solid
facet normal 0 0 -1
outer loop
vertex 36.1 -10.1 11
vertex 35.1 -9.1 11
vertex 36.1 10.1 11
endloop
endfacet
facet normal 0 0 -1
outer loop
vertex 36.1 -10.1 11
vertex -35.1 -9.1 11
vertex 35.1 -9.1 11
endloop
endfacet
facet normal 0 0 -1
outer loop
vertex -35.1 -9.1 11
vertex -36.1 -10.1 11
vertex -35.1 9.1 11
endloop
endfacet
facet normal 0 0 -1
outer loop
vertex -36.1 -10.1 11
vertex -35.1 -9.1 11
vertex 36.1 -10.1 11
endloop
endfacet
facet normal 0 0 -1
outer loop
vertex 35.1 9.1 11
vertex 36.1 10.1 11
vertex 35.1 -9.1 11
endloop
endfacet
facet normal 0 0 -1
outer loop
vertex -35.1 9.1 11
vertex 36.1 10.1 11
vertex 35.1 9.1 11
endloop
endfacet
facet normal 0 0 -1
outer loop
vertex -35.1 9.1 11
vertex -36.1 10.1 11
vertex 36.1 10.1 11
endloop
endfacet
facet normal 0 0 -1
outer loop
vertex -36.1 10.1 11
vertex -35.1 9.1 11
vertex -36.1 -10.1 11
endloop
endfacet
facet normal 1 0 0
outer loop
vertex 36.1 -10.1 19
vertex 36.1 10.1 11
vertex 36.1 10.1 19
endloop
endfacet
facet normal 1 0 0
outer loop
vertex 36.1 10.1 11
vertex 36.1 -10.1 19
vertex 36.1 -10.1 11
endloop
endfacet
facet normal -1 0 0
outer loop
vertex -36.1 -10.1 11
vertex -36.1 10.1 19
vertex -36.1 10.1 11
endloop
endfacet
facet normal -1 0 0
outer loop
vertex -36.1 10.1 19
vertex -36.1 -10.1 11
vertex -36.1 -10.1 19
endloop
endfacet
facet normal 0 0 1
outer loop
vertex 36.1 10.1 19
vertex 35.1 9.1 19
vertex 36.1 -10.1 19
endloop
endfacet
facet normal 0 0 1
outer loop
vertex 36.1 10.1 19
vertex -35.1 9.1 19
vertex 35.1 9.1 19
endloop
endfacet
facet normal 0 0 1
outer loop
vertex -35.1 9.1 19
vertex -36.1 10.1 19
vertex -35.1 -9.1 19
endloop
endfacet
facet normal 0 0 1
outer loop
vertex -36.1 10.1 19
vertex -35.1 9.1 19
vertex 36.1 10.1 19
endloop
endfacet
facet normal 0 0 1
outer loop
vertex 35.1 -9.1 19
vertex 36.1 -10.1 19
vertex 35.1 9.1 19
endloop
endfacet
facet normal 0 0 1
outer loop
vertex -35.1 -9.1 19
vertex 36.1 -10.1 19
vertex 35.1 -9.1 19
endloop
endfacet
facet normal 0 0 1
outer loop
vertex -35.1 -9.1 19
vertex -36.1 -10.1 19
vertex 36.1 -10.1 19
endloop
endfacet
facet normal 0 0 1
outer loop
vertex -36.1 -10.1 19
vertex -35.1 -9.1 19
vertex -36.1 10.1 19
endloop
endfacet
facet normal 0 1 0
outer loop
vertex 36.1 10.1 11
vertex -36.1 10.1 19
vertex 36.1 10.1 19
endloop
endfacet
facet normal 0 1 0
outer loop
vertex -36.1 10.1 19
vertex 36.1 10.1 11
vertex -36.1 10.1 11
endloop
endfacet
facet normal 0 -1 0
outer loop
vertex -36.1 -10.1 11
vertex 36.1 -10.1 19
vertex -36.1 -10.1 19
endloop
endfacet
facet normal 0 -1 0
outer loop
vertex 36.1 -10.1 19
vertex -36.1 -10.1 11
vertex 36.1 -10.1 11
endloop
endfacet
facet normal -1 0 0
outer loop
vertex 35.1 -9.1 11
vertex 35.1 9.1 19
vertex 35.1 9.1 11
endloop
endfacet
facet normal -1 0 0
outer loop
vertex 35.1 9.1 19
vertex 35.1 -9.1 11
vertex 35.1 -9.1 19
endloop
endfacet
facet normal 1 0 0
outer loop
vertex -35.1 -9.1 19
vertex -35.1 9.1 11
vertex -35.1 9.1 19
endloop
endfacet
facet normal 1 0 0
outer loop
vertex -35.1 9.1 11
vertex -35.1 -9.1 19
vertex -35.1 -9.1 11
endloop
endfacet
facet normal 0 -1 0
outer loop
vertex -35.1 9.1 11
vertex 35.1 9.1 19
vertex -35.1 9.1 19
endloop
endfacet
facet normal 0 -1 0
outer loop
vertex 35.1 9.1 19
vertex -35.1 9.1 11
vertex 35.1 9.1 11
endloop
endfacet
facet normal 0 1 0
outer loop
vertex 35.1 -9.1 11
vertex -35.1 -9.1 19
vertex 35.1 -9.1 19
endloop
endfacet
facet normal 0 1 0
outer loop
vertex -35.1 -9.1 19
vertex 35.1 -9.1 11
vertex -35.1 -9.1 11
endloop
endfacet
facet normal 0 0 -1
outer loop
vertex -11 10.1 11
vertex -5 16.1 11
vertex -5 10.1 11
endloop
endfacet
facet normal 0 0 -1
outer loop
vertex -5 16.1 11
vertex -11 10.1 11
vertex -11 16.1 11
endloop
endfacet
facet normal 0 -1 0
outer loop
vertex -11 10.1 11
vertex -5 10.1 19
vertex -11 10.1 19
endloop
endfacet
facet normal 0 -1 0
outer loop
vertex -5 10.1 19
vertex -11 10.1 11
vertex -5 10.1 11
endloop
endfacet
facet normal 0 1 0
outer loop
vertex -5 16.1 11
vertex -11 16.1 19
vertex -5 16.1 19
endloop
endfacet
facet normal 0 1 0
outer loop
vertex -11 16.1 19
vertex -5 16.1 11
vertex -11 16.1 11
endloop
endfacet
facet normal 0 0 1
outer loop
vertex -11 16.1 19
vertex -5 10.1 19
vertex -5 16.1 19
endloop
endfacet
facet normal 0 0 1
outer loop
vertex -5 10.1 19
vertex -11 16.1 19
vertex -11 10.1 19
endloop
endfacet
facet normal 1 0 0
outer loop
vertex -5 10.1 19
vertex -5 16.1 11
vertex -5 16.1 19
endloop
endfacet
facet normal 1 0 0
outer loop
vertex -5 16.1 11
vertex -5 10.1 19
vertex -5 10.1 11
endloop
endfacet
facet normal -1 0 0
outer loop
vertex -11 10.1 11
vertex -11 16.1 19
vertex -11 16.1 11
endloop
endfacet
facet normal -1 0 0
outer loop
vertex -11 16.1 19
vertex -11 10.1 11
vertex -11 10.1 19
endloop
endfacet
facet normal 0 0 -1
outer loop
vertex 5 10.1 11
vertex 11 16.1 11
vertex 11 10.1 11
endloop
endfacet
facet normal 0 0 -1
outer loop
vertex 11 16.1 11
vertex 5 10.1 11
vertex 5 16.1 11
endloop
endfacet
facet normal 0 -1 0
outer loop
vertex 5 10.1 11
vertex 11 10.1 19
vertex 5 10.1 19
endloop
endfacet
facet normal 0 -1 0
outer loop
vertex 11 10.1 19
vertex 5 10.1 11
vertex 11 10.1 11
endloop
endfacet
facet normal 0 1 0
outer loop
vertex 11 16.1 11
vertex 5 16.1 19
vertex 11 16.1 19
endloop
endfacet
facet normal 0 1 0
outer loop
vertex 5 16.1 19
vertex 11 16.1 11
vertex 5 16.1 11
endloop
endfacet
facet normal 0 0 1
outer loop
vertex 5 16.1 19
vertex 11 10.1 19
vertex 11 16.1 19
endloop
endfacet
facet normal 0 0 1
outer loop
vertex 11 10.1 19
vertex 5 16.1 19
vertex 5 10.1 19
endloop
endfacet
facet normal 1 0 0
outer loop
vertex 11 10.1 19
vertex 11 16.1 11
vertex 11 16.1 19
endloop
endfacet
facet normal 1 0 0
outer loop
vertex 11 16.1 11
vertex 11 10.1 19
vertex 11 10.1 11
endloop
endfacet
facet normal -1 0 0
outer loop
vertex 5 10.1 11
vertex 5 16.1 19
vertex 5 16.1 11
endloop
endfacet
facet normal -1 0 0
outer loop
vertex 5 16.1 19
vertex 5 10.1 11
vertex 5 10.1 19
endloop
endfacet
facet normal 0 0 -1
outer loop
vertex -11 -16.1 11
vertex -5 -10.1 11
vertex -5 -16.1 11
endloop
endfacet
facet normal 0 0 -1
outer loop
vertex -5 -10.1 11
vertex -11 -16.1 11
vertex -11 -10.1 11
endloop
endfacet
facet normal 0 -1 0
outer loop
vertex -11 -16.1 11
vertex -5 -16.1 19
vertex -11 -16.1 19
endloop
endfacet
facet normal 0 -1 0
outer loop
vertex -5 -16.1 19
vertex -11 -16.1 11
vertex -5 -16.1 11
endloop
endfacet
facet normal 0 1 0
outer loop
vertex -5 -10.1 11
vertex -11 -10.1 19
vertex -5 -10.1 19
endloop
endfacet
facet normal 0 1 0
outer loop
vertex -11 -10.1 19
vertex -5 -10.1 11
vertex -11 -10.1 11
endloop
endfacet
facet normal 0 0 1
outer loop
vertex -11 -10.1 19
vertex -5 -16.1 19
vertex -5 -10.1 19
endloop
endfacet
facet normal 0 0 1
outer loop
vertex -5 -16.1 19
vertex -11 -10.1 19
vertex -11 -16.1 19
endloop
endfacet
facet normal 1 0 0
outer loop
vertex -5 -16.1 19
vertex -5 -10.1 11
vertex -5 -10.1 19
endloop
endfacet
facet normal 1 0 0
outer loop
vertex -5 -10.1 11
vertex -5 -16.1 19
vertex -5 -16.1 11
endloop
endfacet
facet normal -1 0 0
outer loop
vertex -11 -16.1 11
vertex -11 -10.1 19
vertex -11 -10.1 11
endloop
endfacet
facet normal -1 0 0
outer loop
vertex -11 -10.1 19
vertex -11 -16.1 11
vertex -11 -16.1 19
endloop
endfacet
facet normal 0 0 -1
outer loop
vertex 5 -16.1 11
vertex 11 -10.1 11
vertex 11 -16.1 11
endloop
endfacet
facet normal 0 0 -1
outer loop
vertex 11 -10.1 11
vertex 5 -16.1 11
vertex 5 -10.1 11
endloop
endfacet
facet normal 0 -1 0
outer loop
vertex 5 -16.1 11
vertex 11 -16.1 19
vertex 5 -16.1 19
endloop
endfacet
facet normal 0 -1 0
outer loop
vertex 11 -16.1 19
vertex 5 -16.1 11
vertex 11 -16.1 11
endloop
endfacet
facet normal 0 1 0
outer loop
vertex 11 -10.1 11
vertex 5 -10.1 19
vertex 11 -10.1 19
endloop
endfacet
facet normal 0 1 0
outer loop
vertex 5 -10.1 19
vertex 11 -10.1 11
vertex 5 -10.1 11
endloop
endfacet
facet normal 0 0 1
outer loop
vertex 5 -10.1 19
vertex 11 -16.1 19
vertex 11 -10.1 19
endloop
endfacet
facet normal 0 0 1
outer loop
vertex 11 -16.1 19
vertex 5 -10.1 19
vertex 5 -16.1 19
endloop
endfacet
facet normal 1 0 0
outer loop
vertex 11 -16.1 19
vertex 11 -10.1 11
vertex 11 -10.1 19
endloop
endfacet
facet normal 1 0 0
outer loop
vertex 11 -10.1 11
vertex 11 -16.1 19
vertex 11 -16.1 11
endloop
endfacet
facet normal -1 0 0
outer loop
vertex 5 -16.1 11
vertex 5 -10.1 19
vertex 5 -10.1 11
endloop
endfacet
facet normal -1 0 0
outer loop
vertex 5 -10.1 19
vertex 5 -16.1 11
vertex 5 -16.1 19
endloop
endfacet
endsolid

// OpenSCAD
translate ([0, 0, 15]) {
  rotate (a=90.0, v=[0, 1, 0]) {
    union () {
      difference () {
        cube ([8, 20.2, 72.2], center=true);
        cube ([1000, 18.2, 70.2], center=true);
      }
      translate ([0, 13.1, 0]) {
        rotate (a=90.0, v=[1, 0, 0]) {
          union () {
            translate ([0, -8, 0]) {
              cube ([8, 6, 6], center=true);
            }
            translate ([0, 8, 0]) {
              cube ([8, 6, 6], center=true);
            }
          }
        }
      }
      translate ([0, -13.1, 0]) {
        rotate (a=90.0, v=[1, 0, 0]) {
          union () {
            translate ([0, -8, 0]) {
              cube ([8, 6, 6], center=true);
            }
            translate ([0, 8, 0]) {
              cube ([8, 6, 6], center=true);
            }
          }
        }
      }
    }
  }
}
